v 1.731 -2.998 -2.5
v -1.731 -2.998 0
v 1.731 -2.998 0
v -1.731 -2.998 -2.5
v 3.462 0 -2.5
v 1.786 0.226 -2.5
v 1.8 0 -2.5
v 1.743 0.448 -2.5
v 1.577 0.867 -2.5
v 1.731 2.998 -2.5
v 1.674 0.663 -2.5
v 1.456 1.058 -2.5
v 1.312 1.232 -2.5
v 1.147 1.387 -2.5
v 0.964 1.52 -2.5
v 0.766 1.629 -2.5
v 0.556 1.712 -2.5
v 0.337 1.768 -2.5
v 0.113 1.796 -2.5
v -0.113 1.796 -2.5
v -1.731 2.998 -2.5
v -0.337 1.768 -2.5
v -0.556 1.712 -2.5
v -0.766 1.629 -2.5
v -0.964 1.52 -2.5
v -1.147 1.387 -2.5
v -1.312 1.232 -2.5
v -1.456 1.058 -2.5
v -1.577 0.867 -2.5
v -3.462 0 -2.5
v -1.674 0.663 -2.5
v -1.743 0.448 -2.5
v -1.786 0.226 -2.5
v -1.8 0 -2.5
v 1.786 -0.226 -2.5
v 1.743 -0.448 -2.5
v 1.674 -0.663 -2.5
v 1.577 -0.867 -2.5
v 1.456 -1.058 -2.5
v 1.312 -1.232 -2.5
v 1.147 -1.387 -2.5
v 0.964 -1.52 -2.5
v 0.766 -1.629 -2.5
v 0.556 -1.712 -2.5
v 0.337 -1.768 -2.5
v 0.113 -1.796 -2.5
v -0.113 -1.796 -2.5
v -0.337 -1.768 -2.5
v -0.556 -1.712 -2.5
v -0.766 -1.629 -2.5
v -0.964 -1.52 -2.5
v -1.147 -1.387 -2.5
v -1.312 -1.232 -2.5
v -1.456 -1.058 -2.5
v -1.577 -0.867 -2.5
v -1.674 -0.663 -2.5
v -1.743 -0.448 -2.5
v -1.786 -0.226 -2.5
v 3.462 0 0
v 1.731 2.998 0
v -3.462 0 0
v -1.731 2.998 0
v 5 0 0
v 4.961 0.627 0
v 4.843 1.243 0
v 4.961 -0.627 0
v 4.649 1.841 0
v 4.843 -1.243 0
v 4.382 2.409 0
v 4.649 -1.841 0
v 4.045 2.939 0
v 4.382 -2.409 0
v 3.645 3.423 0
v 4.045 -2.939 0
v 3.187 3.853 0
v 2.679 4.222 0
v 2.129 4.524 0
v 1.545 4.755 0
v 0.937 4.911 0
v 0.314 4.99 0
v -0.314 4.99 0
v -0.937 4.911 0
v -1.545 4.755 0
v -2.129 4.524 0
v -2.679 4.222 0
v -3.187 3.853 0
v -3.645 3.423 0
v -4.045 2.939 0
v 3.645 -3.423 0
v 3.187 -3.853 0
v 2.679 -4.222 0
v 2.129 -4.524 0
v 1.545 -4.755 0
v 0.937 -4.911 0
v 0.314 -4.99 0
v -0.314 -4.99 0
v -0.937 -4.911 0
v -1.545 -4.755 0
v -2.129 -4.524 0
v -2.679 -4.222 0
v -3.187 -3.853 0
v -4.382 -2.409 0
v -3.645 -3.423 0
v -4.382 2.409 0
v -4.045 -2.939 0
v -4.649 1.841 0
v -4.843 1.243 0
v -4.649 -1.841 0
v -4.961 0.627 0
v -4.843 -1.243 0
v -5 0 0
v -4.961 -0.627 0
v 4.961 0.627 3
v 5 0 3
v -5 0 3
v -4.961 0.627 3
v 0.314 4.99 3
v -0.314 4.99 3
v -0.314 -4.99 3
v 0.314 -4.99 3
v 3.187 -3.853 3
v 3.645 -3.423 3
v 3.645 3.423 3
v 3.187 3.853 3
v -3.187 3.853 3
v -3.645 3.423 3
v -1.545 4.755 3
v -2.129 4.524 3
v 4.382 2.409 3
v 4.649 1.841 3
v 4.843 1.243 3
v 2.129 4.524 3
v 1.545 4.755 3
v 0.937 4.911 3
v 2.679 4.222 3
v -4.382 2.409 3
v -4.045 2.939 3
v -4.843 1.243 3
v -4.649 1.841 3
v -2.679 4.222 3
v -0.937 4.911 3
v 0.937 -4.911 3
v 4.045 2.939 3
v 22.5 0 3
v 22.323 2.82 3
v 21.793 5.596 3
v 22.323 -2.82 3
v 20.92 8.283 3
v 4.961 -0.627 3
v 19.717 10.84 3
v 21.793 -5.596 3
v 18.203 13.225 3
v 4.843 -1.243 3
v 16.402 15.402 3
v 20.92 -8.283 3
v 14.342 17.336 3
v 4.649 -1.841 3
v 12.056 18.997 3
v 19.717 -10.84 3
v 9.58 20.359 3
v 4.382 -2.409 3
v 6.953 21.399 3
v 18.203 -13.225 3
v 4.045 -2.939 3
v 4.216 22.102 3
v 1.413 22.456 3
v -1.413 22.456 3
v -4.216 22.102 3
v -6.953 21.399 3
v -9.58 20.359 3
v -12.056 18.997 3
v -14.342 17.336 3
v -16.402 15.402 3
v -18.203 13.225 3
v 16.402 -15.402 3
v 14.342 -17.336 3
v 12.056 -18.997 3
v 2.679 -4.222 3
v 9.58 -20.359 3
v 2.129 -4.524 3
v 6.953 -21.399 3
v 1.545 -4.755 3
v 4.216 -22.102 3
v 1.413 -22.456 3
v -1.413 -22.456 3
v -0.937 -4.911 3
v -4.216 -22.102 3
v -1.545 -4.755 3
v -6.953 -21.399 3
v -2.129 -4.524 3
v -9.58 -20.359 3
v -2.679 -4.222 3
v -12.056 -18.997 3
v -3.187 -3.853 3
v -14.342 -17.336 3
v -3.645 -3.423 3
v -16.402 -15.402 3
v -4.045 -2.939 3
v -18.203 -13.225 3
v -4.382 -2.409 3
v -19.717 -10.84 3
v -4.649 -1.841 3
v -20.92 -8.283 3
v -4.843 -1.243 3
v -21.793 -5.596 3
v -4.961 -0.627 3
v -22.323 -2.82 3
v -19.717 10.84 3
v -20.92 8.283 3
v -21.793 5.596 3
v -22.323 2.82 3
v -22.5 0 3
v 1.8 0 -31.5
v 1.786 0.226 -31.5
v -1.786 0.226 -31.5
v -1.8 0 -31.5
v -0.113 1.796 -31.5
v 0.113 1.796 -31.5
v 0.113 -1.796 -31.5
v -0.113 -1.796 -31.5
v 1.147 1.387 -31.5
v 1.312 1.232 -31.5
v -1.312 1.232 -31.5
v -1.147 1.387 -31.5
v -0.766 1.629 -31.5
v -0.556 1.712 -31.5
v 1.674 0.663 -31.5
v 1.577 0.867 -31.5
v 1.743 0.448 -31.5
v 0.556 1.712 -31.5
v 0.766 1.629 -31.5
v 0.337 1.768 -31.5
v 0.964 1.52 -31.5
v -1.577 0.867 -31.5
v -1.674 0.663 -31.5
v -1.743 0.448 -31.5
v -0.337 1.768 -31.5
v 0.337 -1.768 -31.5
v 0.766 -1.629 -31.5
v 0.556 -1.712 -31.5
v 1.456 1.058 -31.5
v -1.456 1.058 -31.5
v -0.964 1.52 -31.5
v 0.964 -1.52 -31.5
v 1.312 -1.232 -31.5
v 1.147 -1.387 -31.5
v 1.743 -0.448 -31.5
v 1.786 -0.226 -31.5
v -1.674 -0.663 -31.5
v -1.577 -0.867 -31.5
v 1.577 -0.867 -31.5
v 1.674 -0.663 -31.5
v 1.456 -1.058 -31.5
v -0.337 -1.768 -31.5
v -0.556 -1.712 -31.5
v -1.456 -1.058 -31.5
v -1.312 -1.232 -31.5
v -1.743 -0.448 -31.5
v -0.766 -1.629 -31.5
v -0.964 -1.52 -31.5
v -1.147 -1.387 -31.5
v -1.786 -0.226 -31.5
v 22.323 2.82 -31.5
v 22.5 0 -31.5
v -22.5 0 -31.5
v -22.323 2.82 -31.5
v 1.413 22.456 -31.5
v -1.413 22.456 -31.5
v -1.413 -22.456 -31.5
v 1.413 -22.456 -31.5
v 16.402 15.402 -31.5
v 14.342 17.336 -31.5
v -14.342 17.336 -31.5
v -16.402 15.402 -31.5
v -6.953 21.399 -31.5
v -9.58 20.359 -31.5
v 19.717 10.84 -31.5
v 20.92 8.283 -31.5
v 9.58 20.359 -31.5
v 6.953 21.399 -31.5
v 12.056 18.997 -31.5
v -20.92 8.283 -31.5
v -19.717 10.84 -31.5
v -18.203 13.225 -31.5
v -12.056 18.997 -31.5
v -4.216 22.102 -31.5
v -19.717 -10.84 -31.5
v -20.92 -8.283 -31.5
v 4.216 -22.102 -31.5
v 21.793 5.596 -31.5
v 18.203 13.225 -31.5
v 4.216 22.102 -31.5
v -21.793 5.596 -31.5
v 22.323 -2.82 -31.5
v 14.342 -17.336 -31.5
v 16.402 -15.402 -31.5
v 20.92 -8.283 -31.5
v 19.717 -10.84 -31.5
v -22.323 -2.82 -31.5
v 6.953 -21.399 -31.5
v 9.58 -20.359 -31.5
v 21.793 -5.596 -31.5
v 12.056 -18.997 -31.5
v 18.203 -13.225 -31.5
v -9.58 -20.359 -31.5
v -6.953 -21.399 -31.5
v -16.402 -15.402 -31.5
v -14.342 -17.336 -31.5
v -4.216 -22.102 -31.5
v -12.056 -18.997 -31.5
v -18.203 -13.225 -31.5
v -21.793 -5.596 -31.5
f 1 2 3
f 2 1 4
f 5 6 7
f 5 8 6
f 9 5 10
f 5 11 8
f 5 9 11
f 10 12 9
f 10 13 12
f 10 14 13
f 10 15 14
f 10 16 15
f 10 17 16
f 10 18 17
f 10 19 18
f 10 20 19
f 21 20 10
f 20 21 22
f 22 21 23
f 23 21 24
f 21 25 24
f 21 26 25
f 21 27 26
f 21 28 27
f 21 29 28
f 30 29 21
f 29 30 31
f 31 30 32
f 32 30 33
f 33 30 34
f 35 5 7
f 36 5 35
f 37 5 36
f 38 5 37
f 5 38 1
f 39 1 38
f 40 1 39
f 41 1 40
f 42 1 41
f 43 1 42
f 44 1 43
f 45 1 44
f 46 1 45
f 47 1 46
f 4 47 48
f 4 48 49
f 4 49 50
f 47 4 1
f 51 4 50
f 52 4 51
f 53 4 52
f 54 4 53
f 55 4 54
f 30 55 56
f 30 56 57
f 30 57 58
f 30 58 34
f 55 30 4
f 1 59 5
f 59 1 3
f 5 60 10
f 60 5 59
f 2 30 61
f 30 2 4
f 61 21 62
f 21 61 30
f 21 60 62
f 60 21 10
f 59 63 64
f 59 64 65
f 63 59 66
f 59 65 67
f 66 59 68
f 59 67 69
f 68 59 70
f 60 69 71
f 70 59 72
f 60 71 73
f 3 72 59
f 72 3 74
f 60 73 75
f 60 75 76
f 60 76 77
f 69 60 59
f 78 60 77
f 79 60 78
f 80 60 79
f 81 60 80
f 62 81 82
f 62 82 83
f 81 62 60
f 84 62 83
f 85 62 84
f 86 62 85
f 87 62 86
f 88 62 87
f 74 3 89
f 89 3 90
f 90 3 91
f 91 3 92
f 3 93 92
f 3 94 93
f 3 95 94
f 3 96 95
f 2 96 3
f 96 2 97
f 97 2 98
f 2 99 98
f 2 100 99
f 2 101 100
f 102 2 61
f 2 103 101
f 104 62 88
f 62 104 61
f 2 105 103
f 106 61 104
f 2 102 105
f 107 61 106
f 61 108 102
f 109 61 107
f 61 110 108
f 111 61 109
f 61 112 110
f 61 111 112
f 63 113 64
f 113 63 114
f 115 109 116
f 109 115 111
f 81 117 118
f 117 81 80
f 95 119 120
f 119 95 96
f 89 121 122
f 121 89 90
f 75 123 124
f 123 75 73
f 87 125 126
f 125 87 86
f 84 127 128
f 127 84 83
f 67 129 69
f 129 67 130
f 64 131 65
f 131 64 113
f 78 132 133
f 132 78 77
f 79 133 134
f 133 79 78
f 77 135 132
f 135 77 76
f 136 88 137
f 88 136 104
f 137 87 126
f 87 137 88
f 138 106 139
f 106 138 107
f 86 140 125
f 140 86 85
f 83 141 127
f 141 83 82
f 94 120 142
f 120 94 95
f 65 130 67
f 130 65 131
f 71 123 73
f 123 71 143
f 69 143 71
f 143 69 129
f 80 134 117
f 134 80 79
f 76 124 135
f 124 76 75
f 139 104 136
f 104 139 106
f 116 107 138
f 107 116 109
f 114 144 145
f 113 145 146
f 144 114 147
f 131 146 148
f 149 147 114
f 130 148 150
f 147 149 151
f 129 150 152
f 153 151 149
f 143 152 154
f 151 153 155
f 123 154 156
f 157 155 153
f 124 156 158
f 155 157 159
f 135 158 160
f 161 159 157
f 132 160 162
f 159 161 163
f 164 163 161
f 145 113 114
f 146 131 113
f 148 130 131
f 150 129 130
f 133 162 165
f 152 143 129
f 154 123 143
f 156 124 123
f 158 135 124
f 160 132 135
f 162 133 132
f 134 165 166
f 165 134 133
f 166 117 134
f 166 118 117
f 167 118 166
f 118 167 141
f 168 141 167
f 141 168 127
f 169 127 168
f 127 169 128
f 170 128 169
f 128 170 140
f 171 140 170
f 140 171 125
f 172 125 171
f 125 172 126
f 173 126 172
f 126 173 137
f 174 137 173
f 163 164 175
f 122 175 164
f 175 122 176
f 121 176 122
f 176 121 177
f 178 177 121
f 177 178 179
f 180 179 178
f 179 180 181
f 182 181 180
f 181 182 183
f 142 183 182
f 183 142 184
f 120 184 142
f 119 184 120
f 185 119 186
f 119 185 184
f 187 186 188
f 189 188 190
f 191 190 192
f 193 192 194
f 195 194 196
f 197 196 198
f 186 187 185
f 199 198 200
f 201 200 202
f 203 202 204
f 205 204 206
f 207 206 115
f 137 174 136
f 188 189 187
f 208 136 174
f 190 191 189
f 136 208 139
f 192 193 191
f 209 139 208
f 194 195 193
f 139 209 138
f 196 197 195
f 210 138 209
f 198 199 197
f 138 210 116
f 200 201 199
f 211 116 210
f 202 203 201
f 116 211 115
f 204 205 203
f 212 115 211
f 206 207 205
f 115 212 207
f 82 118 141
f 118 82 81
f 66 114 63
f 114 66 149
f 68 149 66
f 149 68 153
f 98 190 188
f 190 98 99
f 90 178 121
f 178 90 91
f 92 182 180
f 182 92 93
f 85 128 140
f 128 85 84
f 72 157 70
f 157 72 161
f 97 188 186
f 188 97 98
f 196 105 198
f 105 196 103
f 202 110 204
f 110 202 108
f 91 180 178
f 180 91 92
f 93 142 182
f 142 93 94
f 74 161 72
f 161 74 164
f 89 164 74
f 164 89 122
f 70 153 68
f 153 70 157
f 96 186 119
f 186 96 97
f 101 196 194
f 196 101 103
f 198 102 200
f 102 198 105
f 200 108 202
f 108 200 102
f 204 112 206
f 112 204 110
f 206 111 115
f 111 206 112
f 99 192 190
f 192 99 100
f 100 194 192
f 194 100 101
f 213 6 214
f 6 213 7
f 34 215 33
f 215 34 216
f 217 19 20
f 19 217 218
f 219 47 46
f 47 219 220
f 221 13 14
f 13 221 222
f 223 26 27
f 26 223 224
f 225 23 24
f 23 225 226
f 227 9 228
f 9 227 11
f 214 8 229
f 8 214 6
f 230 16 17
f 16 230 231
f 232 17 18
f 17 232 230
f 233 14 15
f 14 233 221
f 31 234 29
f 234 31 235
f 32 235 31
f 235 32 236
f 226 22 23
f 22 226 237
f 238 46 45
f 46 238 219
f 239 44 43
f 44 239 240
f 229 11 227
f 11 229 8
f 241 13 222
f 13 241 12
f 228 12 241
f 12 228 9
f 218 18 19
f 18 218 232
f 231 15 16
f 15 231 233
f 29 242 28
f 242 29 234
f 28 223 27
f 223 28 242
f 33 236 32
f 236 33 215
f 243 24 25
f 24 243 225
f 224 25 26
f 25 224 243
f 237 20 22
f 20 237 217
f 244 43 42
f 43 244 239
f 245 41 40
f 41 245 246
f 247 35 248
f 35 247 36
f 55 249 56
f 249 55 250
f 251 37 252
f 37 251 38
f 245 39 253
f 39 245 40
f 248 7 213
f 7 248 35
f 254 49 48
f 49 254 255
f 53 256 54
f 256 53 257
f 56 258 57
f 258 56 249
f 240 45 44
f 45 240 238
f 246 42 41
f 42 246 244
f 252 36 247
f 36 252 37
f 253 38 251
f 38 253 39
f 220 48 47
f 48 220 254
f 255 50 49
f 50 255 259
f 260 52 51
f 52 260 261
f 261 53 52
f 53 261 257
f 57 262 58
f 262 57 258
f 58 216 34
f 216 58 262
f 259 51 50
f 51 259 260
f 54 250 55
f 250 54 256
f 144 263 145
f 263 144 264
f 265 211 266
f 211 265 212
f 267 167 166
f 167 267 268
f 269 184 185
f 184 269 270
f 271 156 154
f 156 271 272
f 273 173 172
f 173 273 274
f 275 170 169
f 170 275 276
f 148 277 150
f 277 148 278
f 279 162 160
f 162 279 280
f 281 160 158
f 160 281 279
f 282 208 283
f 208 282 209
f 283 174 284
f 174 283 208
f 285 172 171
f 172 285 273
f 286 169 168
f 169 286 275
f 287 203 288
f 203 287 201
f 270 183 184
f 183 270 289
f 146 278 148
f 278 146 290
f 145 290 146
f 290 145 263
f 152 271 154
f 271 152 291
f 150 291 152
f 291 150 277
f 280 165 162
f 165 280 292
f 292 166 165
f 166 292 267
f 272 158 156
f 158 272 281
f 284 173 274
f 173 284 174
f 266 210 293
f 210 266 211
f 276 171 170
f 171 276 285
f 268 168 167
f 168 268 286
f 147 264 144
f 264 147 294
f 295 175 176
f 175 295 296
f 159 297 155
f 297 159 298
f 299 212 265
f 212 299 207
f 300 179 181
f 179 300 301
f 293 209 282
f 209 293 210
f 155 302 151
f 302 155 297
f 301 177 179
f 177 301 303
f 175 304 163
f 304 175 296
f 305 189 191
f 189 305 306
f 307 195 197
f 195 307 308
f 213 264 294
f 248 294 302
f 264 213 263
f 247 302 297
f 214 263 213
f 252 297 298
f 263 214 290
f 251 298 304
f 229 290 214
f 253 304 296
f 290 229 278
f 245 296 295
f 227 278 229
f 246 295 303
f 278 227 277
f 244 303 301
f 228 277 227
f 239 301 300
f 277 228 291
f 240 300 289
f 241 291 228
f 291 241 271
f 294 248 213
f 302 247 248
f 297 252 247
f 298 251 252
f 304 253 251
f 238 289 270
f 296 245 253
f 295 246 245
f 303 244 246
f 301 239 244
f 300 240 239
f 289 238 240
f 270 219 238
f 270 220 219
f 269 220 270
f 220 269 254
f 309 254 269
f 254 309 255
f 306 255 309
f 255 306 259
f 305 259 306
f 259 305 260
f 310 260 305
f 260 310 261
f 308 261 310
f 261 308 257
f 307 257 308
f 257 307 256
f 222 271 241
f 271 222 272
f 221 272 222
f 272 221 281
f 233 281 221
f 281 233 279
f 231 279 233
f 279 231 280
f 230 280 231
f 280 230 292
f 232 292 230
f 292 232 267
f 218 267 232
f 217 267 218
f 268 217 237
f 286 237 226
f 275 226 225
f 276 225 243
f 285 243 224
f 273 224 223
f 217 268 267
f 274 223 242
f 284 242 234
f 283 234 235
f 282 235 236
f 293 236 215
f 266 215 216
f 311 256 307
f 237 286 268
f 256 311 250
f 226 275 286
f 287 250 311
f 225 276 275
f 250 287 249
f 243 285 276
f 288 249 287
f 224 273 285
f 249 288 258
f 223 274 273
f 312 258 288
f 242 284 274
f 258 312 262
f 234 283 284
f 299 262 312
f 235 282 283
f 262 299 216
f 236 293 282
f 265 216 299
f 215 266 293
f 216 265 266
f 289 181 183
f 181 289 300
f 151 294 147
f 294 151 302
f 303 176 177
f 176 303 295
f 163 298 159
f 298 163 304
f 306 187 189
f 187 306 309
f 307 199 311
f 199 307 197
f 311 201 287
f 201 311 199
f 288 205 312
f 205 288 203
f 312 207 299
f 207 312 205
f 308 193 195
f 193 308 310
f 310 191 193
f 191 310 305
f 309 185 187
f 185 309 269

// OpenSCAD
$fn = 50;

difference() {
	union() {
		translate(v = [0, 0, -31.5]) {
			cylinder(h = 34.5, r = 22.5);
		}
	}
	union() {
		translate(v = [0, 0, 0]) {
			rotate(a = [0, 0, 0]) {
				difference() {
					union() {
						translate(v = [0, 0, -2.5]) {
							linear_extrude(height = 2.5) {
								polygon(points = [[3.4619999999999997, 0.0], [1.7310000000000003, 2.9981799479017264], [-1.7309999999999992, 2.9981799479017264], [-3.4619999999999997, 4.2397272186481365e-16], [-1.7310000000000014, -2.998179947901726], [1.7309999999999977, -2.9981799479017277]]);
							}
						}
					}
					union();
				}
			}
		}
		#cylinder(h = 3, r = 5.0);
		#translate(v = [0, 0, -100.0]) {
			cylinder(h = 200, r = 1.8);
		}
	}
}
